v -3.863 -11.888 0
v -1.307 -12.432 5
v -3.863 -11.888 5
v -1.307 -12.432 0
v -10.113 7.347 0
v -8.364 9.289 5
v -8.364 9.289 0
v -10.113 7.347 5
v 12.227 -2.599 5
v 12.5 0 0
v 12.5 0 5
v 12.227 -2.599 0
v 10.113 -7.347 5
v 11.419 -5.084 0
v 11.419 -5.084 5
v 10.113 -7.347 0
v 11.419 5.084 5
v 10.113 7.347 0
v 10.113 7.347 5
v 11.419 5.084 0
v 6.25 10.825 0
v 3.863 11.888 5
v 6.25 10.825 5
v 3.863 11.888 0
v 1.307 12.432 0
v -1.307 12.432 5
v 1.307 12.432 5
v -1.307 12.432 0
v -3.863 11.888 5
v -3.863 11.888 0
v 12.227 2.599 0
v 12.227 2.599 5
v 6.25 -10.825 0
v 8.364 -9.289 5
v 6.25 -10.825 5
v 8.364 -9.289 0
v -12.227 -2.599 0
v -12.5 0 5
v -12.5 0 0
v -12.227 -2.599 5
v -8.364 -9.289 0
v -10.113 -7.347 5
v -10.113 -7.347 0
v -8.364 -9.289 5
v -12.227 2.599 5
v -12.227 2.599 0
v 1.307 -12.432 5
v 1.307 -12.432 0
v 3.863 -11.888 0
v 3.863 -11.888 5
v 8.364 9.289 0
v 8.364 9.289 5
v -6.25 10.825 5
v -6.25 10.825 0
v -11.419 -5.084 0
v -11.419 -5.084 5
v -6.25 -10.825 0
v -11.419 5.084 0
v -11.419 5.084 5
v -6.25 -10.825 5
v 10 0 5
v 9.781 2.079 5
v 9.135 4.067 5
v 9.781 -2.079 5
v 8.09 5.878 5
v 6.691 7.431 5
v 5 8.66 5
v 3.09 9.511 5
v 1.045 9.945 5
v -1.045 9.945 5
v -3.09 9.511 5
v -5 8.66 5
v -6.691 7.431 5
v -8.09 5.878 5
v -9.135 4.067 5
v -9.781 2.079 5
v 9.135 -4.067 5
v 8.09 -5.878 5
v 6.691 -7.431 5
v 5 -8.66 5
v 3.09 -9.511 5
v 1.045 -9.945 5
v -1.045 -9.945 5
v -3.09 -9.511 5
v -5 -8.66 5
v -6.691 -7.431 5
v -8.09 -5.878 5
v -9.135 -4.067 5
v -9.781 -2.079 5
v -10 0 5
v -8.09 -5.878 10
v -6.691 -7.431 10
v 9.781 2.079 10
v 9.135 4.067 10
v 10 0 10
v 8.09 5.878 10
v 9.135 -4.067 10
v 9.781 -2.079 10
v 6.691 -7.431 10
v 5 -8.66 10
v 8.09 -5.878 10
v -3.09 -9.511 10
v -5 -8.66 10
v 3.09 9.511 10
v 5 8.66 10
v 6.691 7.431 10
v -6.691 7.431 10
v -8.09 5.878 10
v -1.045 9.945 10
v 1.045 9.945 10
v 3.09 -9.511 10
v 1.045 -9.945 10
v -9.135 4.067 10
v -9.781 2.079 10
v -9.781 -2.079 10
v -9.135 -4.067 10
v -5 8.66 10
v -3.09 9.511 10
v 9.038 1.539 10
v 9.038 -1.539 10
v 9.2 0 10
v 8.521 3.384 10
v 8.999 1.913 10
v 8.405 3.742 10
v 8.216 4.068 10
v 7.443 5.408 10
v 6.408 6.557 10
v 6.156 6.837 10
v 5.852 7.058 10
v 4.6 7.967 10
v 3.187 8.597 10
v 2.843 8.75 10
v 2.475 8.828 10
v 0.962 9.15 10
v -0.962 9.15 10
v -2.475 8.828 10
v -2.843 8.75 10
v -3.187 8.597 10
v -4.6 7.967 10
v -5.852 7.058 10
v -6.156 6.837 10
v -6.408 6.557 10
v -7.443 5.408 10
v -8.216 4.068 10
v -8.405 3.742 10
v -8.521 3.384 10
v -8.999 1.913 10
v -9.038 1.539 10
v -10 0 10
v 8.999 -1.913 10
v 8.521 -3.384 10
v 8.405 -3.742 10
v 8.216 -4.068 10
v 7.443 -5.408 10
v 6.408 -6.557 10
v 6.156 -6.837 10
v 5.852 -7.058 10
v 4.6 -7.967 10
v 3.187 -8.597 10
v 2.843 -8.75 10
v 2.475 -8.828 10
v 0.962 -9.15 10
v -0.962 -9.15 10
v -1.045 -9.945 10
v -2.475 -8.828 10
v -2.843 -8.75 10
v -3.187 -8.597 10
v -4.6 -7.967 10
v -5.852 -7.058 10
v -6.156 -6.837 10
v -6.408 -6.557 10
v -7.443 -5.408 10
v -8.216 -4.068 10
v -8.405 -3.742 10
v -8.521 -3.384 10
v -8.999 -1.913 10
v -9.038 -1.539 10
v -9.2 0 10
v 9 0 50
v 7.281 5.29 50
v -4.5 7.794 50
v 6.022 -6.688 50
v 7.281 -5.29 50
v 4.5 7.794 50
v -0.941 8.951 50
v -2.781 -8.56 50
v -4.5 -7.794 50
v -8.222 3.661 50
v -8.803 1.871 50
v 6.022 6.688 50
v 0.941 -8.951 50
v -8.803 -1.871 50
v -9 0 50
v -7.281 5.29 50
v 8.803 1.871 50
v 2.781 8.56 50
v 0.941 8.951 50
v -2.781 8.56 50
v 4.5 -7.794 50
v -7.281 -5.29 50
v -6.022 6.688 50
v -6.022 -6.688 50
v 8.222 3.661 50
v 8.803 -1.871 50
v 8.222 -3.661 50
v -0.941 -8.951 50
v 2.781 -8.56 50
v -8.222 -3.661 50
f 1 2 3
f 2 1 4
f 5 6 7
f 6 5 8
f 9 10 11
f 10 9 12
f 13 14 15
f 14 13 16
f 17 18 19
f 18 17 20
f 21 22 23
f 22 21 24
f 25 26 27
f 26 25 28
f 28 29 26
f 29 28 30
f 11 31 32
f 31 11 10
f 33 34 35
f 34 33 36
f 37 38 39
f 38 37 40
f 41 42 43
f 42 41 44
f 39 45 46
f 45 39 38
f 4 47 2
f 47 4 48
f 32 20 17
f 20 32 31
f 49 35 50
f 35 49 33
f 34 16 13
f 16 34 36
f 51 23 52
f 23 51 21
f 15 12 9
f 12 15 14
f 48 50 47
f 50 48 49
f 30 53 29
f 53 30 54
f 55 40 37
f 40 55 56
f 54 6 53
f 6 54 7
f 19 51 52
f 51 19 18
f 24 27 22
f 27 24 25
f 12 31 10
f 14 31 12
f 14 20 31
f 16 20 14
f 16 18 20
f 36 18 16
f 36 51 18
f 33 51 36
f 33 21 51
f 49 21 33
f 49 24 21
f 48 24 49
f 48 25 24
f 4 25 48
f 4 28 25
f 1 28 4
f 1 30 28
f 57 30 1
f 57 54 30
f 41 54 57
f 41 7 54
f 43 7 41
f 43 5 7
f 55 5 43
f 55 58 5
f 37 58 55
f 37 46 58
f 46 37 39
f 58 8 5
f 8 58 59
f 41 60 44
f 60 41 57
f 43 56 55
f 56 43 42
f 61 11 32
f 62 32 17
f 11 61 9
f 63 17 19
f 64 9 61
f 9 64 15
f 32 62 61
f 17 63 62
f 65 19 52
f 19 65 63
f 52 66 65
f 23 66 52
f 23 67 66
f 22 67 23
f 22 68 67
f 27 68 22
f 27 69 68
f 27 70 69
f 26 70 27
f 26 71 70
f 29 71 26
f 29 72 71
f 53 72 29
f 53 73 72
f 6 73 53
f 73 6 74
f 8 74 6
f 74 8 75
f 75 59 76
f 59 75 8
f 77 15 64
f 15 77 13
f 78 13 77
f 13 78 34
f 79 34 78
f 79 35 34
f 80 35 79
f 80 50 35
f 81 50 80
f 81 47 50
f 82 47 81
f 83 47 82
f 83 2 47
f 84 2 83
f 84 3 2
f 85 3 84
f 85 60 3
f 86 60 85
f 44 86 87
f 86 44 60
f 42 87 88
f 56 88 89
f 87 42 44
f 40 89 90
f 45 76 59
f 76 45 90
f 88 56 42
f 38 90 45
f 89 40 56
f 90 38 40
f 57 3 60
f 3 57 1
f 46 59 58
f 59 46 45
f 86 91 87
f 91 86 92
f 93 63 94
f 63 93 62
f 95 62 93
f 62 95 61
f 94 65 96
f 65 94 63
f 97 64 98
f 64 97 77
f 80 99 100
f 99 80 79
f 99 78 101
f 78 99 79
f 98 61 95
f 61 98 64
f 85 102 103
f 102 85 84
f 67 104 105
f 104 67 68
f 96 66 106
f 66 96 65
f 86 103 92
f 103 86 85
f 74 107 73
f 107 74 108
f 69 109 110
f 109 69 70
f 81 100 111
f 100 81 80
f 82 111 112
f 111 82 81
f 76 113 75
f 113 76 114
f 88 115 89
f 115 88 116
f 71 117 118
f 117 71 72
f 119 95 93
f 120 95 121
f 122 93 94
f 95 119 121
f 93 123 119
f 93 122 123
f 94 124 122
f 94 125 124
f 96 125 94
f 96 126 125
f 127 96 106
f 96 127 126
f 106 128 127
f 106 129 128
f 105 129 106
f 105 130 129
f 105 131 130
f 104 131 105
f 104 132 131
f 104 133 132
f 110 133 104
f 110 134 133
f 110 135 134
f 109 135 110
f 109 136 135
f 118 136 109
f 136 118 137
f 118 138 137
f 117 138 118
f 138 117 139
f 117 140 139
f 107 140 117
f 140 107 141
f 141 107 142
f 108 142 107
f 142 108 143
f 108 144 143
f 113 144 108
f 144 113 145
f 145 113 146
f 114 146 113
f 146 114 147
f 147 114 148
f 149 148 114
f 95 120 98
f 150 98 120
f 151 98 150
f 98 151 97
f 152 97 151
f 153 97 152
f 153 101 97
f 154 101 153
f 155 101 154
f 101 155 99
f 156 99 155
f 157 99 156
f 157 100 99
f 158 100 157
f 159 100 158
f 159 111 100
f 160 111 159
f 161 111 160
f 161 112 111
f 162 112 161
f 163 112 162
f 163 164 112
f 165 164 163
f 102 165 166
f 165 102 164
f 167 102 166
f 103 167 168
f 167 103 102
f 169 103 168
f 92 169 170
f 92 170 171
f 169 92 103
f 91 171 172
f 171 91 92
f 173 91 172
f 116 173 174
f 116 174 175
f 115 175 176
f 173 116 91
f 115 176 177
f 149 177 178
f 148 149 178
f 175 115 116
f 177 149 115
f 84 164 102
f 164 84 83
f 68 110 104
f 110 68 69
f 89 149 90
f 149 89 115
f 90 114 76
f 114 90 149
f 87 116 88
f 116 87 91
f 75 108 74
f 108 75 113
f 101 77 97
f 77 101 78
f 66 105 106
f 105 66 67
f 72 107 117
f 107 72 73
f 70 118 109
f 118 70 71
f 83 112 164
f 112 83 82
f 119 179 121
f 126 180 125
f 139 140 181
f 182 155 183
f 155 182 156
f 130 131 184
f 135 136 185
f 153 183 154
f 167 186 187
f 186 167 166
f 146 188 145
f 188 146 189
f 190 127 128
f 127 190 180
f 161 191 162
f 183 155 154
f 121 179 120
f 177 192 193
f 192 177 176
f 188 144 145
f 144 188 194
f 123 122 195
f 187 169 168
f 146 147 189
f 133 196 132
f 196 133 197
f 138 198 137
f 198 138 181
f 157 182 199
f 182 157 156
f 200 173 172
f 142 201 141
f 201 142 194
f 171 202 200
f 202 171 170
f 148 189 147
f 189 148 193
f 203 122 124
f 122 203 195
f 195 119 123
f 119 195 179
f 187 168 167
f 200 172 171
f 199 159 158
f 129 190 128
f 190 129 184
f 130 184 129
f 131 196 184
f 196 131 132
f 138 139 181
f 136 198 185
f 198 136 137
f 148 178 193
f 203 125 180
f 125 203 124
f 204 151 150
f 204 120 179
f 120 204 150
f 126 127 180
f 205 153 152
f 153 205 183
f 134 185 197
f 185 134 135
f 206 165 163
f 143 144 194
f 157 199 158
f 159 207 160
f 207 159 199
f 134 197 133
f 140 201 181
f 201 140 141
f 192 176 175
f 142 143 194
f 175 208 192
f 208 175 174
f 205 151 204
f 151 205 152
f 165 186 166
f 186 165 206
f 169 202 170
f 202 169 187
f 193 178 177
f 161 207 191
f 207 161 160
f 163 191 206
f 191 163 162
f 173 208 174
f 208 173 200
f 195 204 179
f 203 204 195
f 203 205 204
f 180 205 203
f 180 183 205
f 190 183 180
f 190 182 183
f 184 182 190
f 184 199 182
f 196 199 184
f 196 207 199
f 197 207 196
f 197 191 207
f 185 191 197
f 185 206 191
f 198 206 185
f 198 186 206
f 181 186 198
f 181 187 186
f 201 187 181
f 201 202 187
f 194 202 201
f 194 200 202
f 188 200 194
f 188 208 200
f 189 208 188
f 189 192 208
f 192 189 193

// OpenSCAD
// BinHingePeg.scad

cylinder(d=25, h=5) ;
cylinder(d=20, h=10) ;
cylinder(d1=18.5, d2=18.0, h=50) ;
